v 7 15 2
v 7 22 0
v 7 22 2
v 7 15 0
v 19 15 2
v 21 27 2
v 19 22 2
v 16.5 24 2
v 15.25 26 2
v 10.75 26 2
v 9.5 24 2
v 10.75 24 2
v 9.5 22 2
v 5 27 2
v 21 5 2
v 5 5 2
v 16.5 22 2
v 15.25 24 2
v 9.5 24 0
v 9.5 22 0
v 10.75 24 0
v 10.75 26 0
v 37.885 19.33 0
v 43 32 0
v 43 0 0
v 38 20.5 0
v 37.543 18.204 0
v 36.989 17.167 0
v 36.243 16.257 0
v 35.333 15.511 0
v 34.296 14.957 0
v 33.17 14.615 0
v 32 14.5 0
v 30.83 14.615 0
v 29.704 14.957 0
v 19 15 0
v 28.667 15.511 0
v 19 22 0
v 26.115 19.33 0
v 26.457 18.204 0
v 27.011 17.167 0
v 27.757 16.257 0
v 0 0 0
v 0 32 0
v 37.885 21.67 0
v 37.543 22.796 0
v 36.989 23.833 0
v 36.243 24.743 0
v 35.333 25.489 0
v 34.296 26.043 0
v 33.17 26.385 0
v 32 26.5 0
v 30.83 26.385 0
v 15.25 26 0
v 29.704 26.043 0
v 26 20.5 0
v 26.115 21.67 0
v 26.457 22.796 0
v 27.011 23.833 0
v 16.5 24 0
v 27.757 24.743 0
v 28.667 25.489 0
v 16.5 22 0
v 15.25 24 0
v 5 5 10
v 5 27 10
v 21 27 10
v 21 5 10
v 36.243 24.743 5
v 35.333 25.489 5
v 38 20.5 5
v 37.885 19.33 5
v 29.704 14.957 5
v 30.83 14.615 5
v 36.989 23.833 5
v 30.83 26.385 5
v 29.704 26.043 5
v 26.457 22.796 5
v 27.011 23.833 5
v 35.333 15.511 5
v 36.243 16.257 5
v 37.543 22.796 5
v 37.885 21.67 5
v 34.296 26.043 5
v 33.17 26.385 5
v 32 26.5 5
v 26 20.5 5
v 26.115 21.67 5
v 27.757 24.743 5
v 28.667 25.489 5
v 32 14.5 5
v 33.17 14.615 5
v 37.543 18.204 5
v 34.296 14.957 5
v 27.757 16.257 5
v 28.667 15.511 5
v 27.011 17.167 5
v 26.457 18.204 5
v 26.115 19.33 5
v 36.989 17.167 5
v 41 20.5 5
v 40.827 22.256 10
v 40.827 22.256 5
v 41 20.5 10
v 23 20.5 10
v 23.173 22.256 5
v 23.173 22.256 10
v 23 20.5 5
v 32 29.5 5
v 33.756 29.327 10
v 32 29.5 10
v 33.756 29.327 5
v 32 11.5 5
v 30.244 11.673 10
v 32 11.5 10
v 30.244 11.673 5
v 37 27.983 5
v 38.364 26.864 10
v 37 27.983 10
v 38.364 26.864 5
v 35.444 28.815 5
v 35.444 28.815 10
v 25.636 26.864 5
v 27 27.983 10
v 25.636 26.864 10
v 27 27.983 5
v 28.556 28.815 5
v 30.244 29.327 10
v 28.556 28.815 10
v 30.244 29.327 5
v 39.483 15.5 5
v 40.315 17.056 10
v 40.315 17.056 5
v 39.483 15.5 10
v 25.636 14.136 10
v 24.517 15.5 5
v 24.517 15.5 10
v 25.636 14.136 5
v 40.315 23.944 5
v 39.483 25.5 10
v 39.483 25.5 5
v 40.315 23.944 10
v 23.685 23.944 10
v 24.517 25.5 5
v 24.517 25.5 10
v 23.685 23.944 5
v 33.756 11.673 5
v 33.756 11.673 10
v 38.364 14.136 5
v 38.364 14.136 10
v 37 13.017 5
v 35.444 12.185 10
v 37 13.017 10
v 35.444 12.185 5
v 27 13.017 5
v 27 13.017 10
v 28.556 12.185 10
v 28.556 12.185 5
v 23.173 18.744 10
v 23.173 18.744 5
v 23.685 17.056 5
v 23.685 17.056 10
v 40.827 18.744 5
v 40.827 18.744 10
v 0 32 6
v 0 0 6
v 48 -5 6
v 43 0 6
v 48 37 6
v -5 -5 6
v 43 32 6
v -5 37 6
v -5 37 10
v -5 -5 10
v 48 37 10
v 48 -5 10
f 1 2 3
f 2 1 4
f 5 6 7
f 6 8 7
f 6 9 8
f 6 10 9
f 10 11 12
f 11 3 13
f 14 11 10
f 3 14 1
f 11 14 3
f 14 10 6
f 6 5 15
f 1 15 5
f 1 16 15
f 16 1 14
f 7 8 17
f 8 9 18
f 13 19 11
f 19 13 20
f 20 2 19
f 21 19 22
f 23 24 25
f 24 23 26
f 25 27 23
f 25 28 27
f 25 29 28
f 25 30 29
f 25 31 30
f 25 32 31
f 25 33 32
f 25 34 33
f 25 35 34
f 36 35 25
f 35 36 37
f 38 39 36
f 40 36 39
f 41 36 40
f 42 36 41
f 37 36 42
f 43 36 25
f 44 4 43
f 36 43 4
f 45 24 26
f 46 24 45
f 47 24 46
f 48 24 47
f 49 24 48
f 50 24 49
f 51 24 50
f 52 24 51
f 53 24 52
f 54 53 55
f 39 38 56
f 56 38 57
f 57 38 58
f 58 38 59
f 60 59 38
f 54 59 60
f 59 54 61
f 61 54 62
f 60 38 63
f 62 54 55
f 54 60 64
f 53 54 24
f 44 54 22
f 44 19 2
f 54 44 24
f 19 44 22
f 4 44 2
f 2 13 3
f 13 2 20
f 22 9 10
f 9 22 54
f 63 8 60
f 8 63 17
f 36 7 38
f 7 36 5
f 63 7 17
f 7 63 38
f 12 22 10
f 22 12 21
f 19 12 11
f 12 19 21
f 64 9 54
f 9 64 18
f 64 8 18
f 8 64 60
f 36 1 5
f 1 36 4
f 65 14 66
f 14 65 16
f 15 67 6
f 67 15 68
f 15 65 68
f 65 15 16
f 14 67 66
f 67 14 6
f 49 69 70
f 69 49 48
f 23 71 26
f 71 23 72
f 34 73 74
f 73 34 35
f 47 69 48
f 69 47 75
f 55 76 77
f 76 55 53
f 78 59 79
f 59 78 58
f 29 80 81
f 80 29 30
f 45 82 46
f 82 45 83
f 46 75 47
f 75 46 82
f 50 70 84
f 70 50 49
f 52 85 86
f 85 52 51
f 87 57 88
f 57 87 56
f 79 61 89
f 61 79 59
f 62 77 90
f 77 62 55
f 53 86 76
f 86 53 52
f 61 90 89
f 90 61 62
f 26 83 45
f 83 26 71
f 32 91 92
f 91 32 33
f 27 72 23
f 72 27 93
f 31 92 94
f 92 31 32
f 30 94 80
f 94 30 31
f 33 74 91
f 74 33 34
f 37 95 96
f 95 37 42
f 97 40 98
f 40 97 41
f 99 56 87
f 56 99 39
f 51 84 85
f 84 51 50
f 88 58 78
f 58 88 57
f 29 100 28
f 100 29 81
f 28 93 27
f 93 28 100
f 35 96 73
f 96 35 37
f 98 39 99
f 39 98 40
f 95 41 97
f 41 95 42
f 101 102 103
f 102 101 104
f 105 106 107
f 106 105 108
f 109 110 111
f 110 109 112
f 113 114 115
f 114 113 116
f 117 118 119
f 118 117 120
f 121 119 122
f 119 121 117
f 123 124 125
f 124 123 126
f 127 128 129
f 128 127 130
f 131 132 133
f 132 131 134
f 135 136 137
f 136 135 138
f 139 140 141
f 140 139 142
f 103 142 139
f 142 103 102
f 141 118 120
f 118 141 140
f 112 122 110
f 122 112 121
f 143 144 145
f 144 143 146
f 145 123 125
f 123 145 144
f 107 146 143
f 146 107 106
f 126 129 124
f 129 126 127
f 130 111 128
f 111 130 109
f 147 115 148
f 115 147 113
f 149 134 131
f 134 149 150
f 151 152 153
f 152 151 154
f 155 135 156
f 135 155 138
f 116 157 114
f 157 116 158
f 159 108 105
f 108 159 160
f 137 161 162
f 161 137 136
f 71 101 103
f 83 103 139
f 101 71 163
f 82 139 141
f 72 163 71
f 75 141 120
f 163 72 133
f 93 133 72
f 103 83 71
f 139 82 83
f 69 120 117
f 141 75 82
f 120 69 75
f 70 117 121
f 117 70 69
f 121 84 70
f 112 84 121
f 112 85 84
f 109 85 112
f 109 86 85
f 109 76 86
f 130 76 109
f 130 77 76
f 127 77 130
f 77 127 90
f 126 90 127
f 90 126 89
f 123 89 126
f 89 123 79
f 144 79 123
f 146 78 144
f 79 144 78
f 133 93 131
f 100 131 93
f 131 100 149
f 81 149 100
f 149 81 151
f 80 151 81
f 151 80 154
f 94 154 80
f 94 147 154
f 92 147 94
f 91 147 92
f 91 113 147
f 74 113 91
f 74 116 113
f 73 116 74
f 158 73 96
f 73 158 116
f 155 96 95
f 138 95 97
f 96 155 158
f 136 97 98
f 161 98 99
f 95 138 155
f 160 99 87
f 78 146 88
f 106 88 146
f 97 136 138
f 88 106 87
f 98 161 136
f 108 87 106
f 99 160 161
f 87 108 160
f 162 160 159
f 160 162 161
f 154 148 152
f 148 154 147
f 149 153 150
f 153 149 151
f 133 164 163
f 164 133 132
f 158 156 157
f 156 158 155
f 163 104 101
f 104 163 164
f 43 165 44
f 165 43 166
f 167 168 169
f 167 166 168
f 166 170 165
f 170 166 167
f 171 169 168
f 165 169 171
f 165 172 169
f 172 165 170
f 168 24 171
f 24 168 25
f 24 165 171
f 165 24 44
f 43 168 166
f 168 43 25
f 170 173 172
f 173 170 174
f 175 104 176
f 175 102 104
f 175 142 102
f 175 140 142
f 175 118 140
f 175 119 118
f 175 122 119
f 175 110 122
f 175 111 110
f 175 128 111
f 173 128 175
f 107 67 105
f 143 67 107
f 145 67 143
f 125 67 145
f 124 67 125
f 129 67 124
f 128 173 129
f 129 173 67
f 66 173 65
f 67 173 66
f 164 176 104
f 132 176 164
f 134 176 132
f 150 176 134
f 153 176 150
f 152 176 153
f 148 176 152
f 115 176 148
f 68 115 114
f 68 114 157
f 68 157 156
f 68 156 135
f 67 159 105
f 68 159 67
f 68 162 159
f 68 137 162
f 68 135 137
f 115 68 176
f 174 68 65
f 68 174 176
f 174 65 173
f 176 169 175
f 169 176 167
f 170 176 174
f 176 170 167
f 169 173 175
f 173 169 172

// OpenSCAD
difference() {
    union() {
        cube([43, 32, 6]);
        translate([-5,-5, 6]) {
            // internal dimension requirements
            cube([53, 42, 4]);
        }
    }
    translate([5,5,0]) {
        cube([16,22,10]);
    }
    
    translate([32,14.5 + 6,0]) {
        cylinder(d=12, h=10, $fn=32);
        translate([0,0,5]) {
            cylinder(d=18, h=10, $fn=32);
        }
    }
}


translate([5,5,0]) {
    
    difference() {
        
        cube([16,22,2]);

        translate([2,10,0]) {
            difference() {
                    
                color("blue") {
                    cube([12,11,2]);
                }
                
                union() {
                    translate([0,7,0]) {
                        cube([2.5,4,2]);
                    }
                    
                    translate([9.5,7,0]) {
                        cube([2.5,4,2]);
                    }    
                    
                    translate([2.5,9,0]) {
                        cube([1.25,2,2]);
                    }    
                    
                    translate([8.25,9,0]) {
                        cube([1.25,2,2]);
                    }    
                }
            }
        }
    }
}
